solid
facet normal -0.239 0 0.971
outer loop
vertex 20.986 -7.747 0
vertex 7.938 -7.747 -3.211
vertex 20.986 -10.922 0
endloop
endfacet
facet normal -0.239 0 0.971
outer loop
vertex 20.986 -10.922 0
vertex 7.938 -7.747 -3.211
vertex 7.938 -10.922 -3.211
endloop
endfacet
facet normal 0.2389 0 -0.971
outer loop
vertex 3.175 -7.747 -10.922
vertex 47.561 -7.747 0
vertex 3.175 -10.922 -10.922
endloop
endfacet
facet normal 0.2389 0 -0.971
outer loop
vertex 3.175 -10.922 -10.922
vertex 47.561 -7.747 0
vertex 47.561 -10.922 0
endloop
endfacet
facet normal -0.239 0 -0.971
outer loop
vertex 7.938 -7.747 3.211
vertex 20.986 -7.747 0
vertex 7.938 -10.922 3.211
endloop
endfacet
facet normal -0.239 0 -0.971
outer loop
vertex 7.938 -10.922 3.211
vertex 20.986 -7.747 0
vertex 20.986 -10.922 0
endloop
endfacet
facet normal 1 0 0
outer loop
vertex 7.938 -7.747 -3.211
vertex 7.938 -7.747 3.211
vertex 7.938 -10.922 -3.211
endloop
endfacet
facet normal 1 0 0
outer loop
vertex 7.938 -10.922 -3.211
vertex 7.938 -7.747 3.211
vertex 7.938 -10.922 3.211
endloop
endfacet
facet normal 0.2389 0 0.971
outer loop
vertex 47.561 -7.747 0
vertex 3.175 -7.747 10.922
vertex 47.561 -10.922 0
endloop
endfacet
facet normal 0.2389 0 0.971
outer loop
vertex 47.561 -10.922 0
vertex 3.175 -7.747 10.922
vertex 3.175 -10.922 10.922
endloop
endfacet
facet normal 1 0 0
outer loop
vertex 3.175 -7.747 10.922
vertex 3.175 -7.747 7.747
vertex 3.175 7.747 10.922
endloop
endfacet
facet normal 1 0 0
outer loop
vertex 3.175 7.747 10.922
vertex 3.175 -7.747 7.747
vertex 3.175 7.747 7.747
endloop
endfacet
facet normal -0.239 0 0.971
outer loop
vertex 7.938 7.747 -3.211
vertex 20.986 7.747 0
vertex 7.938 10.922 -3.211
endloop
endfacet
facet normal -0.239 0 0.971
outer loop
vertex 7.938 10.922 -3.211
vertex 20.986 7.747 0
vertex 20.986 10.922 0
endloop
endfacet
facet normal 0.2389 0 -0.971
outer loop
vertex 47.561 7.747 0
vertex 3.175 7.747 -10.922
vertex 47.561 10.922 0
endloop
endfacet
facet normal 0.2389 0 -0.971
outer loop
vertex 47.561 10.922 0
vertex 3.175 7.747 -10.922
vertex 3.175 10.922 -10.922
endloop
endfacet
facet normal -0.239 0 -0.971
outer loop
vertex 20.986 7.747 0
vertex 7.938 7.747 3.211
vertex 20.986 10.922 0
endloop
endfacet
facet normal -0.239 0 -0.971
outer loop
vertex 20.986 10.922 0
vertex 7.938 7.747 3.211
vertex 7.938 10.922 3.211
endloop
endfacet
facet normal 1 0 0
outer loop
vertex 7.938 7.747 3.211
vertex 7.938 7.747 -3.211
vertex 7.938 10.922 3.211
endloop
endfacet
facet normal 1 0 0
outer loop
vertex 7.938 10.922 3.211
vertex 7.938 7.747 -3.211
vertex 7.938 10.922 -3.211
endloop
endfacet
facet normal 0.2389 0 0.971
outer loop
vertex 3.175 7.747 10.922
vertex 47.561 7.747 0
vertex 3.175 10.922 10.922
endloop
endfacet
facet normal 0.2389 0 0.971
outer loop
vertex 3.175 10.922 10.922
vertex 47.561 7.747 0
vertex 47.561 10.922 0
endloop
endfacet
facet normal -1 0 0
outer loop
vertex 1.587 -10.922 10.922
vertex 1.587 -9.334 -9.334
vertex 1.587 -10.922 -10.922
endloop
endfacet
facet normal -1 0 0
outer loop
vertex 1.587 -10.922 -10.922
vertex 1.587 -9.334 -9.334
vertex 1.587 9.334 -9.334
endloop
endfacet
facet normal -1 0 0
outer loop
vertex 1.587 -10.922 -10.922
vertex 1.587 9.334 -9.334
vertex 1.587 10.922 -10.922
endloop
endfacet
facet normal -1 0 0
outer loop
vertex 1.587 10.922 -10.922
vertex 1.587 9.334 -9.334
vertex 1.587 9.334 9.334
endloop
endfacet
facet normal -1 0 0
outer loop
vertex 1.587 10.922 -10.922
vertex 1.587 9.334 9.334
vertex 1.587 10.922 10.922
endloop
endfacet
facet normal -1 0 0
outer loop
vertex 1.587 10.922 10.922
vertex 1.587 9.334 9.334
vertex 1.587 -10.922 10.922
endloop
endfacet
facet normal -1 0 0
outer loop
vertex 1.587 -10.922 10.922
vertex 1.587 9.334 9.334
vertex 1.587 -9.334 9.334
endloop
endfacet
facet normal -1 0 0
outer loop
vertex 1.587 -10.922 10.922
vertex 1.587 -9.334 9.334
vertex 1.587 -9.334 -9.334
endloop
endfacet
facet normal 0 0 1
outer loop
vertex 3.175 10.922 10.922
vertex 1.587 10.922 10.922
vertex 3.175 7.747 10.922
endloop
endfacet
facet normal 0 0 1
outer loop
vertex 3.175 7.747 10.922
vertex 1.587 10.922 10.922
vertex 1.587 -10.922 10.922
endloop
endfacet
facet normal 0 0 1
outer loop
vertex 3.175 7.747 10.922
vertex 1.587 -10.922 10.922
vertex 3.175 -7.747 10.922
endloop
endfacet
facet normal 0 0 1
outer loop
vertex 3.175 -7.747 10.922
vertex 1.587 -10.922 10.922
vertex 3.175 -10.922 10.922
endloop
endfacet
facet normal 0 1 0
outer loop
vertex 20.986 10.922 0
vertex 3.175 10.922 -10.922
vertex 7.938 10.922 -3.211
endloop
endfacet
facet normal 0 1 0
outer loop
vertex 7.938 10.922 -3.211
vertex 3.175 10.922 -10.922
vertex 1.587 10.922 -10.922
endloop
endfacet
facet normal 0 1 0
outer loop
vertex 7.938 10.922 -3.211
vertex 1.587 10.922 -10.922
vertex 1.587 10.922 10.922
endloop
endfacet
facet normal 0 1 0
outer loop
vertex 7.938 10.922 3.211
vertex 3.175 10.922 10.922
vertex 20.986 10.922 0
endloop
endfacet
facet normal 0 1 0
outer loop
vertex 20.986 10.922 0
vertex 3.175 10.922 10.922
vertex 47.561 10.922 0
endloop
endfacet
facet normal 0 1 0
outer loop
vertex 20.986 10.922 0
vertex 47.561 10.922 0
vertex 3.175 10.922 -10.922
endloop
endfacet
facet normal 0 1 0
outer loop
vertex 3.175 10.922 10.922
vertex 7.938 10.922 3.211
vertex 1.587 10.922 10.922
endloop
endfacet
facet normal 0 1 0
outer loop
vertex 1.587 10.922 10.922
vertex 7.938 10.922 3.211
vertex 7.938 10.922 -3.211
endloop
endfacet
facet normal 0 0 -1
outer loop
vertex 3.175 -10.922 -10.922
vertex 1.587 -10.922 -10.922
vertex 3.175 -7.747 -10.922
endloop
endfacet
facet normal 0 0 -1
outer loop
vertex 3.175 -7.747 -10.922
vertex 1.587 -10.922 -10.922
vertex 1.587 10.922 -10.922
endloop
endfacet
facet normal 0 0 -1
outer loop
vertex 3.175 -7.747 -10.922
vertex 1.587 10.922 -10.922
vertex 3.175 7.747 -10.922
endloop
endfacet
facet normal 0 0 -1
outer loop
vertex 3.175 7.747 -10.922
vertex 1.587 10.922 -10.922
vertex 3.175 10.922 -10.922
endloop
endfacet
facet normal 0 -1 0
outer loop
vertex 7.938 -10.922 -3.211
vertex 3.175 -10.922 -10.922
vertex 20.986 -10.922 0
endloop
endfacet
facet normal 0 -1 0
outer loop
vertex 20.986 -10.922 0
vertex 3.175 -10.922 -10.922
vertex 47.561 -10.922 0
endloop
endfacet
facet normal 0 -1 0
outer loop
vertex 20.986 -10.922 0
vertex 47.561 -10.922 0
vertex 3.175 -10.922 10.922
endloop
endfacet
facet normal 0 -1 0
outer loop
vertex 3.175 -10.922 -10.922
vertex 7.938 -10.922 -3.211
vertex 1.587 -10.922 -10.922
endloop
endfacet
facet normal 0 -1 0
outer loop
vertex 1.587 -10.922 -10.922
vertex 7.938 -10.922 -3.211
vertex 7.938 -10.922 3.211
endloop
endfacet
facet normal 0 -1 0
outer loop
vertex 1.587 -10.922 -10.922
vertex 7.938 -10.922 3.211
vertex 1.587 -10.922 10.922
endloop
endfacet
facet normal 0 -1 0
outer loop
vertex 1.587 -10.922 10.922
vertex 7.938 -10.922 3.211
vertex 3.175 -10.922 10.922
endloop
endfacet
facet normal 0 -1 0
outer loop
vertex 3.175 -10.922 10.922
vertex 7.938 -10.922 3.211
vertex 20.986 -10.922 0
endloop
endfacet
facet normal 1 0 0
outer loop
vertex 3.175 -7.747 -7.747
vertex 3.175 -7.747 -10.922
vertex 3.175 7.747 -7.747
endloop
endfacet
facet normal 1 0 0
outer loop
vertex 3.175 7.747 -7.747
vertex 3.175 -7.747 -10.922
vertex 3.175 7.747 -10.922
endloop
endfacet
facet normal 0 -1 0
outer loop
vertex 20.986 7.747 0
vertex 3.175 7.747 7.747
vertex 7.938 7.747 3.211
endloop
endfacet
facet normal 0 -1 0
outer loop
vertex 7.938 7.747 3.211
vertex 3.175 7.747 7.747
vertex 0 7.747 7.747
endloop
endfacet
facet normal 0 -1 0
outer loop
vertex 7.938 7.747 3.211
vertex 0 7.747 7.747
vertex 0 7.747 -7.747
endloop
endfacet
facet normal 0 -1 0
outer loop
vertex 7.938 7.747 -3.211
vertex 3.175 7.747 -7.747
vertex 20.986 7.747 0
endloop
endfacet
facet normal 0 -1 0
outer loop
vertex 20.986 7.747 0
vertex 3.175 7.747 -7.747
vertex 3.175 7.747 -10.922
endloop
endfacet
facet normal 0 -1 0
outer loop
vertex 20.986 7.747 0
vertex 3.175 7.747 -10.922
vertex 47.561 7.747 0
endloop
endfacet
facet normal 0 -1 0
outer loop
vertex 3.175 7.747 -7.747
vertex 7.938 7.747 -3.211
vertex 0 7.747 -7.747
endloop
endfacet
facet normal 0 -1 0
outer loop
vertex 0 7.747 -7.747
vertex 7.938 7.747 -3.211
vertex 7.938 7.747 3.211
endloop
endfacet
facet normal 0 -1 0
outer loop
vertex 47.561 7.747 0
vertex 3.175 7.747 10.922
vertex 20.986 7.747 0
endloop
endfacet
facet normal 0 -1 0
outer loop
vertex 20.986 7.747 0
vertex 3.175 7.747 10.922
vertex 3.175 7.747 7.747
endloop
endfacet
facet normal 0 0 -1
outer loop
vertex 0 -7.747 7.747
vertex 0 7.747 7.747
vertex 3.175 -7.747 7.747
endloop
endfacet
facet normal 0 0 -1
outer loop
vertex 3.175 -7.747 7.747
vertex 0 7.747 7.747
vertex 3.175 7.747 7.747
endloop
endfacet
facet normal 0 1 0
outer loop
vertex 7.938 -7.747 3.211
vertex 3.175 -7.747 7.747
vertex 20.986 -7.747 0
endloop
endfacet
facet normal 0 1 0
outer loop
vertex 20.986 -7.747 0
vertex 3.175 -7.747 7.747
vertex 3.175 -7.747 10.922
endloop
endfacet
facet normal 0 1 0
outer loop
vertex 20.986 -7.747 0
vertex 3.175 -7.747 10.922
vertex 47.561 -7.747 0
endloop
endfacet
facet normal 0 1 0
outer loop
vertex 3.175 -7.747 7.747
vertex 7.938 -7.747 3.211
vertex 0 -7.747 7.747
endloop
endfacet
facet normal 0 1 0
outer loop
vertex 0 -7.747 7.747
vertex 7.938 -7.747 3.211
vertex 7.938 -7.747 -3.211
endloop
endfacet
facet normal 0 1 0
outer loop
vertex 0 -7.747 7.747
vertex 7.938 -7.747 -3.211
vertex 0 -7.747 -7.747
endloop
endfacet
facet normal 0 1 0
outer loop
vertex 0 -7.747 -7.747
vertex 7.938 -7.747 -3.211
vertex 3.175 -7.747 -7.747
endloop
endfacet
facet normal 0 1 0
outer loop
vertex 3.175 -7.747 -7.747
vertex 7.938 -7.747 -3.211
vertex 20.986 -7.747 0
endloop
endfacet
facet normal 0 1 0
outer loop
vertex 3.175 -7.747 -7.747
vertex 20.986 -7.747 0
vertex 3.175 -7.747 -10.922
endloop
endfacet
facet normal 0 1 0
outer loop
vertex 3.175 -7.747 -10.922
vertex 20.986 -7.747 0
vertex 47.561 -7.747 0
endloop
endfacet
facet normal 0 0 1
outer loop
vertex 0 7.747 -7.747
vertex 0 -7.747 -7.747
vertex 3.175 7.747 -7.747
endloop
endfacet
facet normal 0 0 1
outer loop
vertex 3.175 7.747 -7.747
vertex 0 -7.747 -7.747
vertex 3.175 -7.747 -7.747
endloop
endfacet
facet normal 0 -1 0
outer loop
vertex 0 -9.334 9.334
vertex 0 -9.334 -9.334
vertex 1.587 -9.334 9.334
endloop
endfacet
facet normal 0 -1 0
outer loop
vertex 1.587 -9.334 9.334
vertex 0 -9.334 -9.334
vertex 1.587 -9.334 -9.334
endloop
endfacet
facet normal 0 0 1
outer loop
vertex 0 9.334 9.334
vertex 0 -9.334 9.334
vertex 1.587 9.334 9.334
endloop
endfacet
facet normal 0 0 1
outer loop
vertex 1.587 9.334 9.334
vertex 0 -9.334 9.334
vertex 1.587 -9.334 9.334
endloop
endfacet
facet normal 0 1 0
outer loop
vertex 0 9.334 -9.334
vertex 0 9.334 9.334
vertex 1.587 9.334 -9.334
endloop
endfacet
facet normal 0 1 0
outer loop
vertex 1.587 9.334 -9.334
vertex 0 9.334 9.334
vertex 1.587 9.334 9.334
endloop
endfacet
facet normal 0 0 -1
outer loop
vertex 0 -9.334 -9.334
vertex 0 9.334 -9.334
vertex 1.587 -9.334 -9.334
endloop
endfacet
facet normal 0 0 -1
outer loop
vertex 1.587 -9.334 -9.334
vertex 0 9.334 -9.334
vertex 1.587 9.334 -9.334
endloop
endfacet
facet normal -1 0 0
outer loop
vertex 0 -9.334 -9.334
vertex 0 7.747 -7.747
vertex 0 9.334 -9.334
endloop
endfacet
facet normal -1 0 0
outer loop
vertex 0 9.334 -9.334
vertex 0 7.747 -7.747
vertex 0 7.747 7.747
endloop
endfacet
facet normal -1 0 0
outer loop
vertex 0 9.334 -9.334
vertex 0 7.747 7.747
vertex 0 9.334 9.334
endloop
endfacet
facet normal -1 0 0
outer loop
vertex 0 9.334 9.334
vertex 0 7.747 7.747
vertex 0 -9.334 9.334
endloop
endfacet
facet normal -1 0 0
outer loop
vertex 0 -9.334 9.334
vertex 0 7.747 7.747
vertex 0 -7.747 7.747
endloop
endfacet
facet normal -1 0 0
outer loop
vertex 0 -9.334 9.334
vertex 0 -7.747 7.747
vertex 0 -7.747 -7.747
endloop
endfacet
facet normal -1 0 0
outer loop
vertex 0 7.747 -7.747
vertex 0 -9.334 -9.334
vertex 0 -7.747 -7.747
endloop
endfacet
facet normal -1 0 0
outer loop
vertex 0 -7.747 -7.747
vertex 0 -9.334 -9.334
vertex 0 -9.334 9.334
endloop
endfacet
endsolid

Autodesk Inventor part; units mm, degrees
ref_plane "YZ Plane" through (0, 0, 0) normal (1, 0, 0) x (0, 1, 0)
ref_plane "XZ Plane" through (0, 0, 0) normal (0, 1, 0) x (-1, 0, 0)
ref_plane "XY Plane" through (0, 0, 0) normal (0, 0, 1) x (1, 0, 0)
sketch "Sketch1" plane through (0, 0, 0) normal (1, 0, 0) x (0, 1, 0)
  line L0 (-9.3345, 9.3345) -> (9.3345, 9.3345)
  line L1 (9.3345, 9.3345) -> (9.3345, -9.3345)
  line L2 (9.3345, -9.3345) -> (-9.3345, -9.3345)
  line L3 (-9.3345, -9.3345) -> (-9.3345, 9.3345)
  line L4 (-9.3345, 9.3345) -> (9.3345, -9.3345) construction
  line L5 (9.3345, 9.3345) -> (-9.3345, -9.3345) construction
  line L6 (7.747, -7.747) -> (7.747, 7.747)
  line L7 (7.747, 7.747) -> (-7.747, 7.747)
  line L8 (-7.747, 7.747) -> (-7.747, -7.747)
  line L9 (-7.747, -7.747) -> (7.747, -7.747)
  point P0 (0, 0)
  dimension "d0" = 18.669
  dimension "d1" = 1.5875
extrude "Extrusion1" add sketch "Sketch1" along normal blind 1.5875
sketch "Sketch2" plane through (1.5875, 0, 0) normal (1, 0, 0) x (0, 0, -1)
  line L0 (9.3345, -9.3345) -> (9.3345, 9.3345) projected
  line L1 (9.3345, 9.3345) -> (-9.3345, 9.3345) projected
  line L2 (-9.3345, 9.3345) -> (-9.3345, -9.3345) projected
  line L3 (-9.3345, -9.3345) -> (9.3345, -9.3345) projected
  line L4 (7.747, 7.747) -> (7.747, -7.747) projected
  line L5 (7.747, -7.747) -> (-7.747, -7.747) projected
  line L6 (-7.747, -7.747) -> (-7.747, 7.747) projected
  line L7 (-7.747, 7.747) -> (7.747, 7.747) projected
  line L8 (-10.922, 10.922) -> (10.922, 10.922)
  line L9 (10.922, 10.922) -> (10.922, -10.922)
  line L10 (10.922, -10.922) -> (-10.922, -10.922)
  line L11 (-10.922, -10.922) -> (-10.922, 10.922)
  point P0 (0, 0)
  dimension "d4" = 1.5875
extrude "Extrusion2" add sketch "Sketch2" along normal blind 1.5875 contours L3 L2 L1 L0 | L8 L9 L10 L11
sketch "Sketch3" plane through (3.175, 0, 0) normal (1, 0, 0) x (0, 0, -1)
  point P0 (0, 0)
sketch "Sketch4" plane through (1.5875, 10.922, 10.922) normal (0, 1, 0) x (1, 0, 0)
  line L0 (0, 21.844) -> (0, 0) projected
  line L1 (1.5875, 0) -> (45.974, 10.922)
  line L2 (45.974, 10.922) -> (1.5875, 21.844)
  line L3 (1.5875, 21.844) -> (1.5875, 0) projected
  line L4 (6.35, 14.1327) -> (6.35, 7.7113)
  line L5 (6.35, 7.7113) -> (19.3981, 10.922)
  line L6 (19.3981, 10.922) -> (6.35, 14.1327)
  point P0 (-1.5875, 10.922)
  point P1 (1.5875, 10.922)
  dimension "d7" = 45.974
  dimension "d8" = 6.35
extrude "Extrusion3" add sketch "Sketch4" against normal up to surface (3.175 mm away)
mirror "Mirror1" about plane through (0, 0, 0) normal (0, 1, 0) of "Extrusion3"
properties part number "board support"
